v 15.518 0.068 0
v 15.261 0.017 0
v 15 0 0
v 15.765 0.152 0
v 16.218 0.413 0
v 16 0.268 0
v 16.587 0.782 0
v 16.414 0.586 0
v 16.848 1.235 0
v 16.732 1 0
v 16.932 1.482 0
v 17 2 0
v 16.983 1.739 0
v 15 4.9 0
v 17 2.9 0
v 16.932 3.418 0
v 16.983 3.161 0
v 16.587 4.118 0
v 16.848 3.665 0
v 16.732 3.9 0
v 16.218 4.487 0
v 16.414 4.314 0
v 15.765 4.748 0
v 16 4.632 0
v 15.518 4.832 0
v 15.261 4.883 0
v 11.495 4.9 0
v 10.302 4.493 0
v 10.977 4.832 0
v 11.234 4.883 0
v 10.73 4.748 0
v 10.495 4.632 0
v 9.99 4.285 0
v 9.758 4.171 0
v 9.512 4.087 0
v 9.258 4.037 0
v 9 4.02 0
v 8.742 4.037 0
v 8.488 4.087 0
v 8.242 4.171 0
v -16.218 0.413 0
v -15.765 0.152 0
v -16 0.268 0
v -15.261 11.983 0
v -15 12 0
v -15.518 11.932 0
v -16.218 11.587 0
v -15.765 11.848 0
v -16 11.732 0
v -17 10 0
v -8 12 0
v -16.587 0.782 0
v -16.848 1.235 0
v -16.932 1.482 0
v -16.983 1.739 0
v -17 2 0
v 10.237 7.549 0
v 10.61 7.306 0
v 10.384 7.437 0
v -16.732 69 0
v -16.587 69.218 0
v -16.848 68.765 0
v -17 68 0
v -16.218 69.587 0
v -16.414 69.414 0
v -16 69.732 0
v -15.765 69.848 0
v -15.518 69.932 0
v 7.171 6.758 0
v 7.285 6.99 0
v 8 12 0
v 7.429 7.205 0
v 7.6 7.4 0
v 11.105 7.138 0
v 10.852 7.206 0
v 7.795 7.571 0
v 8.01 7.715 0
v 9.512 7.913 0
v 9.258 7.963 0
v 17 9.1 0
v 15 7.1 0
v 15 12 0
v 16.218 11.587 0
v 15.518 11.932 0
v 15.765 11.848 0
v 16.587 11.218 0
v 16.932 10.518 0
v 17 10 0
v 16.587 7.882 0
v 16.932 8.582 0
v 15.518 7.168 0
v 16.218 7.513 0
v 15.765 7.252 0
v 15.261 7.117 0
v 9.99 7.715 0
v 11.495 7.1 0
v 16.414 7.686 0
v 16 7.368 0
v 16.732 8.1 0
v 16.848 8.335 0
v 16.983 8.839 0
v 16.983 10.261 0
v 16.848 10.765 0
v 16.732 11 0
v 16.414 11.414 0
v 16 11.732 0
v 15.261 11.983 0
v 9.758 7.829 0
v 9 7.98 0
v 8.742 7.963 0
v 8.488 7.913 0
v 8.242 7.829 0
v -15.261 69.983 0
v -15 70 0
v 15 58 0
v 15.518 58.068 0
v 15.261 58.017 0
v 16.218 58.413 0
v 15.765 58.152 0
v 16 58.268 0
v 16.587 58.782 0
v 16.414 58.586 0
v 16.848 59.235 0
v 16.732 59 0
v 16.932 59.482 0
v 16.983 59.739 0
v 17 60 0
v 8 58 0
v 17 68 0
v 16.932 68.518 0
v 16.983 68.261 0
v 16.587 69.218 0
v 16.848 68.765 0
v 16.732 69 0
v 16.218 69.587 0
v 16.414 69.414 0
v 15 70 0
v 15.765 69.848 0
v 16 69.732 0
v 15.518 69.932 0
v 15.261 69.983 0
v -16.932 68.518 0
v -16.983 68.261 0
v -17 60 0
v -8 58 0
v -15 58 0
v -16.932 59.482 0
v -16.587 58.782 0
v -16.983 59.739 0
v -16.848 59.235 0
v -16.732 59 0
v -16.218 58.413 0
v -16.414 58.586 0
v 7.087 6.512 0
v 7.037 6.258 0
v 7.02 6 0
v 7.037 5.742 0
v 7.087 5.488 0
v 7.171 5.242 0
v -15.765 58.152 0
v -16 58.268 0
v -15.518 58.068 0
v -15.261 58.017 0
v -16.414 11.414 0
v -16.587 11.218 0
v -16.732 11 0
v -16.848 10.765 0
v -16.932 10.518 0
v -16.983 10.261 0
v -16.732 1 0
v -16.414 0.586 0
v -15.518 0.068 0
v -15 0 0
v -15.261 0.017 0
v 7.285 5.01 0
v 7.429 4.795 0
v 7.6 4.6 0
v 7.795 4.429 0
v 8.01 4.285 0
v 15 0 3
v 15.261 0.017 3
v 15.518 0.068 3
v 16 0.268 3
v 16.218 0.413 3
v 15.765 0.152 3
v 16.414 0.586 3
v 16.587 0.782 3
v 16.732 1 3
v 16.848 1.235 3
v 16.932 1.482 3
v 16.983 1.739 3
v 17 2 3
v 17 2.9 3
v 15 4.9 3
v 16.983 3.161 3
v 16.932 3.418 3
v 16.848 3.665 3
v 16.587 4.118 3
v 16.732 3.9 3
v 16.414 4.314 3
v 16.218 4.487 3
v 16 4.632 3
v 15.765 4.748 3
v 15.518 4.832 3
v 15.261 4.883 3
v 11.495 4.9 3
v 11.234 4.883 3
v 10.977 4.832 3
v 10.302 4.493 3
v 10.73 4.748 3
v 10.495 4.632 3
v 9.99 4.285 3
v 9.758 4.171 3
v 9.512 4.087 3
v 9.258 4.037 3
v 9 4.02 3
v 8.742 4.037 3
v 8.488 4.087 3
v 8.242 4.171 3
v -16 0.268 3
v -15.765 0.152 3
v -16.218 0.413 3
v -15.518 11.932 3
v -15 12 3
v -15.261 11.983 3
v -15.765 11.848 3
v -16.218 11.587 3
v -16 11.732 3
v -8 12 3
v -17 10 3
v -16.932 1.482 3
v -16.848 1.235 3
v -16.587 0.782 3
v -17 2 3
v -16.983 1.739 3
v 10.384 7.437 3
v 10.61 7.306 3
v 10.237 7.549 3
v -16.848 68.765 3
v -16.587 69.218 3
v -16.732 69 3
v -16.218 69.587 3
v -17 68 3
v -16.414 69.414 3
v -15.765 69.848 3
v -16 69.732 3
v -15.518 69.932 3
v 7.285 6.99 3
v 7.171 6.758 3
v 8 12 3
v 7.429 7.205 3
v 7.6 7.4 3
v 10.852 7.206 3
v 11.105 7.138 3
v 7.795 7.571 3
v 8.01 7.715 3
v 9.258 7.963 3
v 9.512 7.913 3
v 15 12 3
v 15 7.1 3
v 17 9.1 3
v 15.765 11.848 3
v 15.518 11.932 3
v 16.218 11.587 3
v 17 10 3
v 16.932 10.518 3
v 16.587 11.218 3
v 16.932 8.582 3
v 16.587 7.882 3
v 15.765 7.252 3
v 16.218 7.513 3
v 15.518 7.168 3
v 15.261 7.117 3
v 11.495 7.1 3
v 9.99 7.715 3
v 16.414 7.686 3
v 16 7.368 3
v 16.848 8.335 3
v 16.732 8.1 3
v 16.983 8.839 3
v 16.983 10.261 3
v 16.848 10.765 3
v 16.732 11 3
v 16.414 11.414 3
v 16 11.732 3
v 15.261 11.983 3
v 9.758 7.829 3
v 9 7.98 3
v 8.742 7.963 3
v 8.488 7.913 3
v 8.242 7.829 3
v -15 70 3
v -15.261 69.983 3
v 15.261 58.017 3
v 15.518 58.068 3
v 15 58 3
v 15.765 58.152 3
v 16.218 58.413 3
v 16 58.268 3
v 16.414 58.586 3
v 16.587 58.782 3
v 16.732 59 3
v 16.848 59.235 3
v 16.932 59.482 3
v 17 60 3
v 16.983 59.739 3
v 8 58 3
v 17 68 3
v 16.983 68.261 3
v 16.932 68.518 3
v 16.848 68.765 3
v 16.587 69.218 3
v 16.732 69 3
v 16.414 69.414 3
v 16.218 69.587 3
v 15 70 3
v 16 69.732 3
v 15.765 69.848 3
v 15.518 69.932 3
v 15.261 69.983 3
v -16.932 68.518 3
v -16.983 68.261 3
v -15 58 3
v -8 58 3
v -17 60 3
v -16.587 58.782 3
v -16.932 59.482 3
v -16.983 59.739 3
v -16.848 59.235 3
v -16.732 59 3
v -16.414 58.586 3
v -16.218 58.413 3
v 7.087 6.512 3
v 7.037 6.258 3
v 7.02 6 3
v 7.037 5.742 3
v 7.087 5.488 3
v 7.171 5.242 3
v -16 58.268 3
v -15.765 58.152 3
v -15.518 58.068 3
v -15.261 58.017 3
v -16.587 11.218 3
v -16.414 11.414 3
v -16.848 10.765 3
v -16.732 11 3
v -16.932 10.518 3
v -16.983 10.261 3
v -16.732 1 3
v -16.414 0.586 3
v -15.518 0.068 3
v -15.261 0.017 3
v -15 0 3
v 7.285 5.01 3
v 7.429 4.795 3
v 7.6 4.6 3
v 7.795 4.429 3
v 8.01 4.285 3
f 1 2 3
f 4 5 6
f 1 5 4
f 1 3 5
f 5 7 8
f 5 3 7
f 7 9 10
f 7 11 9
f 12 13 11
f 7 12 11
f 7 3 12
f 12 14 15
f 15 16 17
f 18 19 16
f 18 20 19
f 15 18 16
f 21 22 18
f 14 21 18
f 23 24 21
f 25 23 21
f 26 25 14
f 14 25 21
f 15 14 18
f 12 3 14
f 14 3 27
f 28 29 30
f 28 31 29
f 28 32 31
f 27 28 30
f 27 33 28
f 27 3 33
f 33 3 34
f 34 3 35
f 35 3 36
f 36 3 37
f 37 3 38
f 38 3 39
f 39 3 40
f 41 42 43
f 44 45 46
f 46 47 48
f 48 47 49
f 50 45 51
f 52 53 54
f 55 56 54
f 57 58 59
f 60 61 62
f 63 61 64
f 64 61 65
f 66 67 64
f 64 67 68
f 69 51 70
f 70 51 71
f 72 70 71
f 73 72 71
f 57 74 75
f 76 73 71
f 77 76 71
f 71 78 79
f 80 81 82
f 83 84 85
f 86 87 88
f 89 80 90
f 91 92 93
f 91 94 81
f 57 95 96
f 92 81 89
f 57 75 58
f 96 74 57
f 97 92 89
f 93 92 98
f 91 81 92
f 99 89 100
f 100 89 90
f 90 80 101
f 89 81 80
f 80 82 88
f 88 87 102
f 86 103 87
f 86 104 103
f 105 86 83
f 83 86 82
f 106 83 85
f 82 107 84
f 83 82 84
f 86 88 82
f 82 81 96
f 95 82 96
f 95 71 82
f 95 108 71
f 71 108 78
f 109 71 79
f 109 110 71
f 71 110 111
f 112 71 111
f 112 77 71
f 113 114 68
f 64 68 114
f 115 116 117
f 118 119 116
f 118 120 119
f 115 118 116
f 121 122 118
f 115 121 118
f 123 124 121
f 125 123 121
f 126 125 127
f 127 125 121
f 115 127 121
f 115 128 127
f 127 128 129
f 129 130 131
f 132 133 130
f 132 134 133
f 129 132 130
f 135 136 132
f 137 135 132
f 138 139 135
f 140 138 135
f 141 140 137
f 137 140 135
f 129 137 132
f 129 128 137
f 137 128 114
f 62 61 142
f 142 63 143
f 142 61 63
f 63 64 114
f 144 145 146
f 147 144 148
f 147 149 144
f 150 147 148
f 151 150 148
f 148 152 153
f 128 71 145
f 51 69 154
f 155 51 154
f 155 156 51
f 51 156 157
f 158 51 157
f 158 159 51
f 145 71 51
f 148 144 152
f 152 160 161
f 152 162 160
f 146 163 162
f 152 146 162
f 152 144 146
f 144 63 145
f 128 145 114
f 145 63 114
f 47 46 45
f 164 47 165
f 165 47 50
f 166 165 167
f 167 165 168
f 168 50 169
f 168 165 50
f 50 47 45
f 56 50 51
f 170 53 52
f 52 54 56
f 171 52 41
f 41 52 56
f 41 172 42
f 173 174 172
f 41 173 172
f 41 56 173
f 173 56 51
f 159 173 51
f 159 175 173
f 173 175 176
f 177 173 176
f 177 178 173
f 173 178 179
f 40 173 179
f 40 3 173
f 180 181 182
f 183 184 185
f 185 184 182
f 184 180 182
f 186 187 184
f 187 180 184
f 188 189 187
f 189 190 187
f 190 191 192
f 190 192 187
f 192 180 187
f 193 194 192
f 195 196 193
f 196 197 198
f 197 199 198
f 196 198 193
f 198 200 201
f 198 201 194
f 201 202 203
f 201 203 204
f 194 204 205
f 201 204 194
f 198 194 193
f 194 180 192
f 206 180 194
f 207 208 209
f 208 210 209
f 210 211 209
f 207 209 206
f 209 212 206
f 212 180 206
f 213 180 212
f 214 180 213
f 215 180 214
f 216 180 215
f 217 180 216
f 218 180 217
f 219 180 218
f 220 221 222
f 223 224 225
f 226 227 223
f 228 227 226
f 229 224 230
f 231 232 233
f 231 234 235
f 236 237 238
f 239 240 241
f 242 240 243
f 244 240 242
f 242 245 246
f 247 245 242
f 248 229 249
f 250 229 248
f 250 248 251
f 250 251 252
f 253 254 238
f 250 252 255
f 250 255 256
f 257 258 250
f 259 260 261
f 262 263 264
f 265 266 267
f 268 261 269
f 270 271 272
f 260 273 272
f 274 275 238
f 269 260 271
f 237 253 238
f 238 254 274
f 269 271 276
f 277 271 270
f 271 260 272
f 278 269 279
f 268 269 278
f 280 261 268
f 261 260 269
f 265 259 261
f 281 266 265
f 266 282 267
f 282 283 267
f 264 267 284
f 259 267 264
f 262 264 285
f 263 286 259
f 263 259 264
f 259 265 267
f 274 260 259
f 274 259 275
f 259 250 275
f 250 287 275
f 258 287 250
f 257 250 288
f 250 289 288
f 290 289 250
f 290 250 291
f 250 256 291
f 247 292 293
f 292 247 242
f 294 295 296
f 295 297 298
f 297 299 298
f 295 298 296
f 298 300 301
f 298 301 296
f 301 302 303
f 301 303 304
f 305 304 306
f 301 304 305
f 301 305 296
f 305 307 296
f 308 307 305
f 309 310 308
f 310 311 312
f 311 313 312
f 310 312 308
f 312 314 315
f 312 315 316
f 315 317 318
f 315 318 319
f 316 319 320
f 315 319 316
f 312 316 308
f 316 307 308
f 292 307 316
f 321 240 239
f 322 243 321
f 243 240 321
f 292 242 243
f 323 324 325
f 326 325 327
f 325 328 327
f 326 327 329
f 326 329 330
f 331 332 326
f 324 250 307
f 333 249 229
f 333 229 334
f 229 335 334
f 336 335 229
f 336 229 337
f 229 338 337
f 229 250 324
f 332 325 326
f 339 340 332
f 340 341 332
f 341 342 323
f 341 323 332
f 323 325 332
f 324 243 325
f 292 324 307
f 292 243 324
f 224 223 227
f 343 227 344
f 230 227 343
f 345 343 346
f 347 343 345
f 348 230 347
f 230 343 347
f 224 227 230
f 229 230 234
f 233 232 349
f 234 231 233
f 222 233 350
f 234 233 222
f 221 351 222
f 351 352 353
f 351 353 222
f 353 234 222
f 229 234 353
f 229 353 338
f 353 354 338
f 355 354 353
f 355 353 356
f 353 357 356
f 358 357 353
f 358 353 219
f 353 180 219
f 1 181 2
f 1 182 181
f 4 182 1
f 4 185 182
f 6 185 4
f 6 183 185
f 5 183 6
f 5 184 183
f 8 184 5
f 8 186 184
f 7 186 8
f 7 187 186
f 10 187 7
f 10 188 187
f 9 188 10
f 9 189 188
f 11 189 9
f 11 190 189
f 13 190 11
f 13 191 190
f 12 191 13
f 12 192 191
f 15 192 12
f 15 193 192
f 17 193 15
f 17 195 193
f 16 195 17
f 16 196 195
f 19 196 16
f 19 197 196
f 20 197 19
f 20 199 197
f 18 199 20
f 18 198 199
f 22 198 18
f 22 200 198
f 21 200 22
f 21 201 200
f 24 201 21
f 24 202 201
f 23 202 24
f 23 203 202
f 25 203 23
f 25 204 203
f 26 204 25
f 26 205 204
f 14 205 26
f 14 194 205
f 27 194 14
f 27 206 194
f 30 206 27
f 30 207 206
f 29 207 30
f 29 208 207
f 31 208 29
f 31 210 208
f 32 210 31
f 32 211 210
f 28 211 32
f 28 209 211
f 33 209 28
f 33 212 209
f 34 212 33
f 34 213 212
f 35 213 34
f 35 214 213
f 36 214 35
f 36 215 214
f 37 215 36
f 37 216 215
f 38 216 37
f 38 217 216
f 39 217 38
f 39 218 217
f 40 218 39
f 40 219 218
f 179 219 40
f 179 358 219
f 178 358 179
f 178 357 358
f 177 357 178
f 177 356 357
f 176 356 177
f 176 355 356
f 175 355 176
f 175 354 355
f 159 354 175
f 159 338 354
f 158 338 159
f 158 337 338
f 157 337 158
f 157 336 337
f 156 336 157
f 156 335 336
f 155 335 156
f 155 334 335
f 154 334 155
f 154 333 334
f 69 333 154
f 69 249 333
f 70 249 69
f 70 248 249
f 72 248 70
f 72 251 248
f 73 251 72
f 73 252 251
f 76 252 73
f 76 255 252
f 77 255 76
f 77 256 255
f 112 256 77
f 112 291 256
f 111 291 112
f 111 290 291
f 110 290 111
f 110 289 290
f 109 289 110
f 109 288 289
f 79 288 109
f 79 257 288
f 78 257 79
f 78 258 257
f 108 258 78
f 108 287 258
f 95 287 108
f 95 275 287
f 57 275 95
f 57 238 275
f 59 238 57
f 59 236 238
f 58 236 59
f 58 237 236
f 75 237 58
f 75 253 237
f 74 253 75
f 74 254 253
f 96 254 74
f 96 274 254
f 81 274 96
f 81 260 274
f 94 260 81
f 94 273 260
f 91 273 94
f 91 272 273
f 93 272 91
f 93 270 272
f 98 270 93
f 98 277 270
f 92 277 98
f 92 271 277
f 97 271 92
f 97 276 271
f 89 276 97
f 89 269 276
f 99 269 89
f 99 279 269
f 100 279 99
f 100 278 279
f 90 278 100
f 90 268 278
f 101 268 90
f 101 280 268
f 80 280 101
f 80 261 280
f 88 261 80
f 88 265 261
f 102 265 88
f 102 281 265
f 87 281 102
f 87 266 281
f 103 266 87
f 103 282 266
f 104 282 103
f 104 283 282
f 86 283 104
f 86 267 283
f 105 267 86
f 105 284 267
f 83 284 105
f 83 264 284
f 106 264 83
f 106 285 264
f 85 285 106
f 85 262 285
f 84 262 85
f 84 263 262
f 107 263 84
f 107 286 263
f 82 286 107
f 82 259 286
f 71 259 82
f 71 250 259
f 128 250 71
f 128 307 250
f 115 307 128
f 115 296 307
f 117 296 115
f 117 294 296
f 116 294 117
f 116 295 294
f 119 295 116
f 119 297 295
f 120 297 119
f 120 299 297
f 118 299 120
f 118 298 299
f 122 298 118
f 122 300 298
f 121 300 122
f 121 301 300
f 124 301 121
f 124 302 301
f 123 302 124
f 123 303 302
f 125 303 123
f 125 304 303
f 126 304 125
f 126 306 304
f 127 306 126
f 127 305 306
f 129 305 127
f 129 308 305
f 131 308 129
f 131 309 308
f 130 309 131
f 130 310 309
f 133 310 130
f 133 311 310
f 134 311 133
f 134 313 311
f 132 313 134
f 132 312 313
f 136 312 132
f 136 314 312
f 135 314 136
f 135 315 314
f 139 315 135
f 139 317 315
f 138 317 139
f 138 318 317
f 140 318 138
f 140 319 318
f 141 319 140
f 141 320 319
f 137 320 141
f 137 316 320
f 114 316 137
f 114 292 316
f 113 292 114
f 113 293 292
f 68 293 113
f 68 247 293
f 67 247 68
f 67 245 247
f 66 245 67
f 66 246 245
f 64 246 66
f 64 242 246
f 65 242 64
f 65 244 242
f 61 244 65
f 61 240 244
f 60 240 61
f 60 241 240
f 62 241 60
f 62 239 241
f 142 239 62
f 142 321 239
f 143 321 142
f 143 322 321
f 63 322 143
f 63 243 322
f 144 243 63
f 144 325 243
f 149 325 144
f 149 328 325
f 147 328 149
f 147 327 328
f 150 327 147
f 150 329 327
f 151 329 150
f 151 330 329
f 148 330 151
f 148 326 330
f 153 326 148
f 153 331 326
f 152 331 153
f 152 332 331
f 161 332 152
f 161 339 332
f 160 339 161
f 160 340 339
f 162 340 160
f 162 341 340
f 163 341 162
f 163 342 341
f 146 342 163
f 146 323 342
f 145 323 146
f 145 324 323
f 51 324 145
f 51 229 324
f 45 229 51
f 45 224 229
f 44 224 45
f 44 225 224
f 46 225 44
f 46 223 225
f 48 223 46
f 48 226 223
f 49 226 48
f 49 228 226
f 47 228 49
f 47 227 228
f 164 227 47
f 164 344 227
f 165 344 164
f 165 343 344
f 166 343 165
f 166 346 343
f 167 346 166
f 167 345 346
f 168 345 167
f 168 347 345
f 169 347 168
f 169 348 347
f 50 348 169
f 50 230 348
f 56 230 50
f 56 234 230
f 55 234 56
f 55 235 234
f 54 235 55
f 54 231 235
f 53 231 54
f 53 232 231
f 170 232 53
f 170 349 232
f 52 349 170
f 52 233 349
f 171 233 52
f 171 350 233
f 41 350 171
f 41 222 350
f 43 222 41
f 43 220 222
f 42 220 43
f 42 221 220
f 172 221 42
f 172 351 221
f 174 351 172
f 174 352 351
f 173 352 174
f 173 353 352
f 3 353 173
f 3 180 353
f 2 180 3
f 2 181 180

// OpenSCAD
// Cord Winder — wrap earbuds, charging cables or extension leads
// so they don't tangle. Tuck the plug into the slit at one end.
// Print flat (as rendered). Print two or three at different lengths.

/* [Size] */
// Overall length (mm)
length = 70;            // [40:1:200]
// Width of the end tabs (mm)
width = 34;             // [20:1:80]
// Width of the middle where the cable wraps (mm)
waist = 16;             // [8:1:60]
// Thickness (mm)
thickness = 3;          // [2:0.5:6]
// Width of the slit that holds the cable end (mm)
slit = 2.2;             // [1:0.1:5]

/* [Hidden] */
$fn = 48;
tab = 12;   // height of each end tab

module shape() {
    offset(r = 2) offset(delta = -2)
    difference() {
        union() {
            translate([-width / 2, 0]) square([width, tab]);
            translate([-width / 2, length - tab]) square([width, tab]);
            translate([-waist / 2, 0]) square([waist, length]);
        }
        // slit + keyhole to lock the cable end
        translate([width / 2 - 8, tab / 2 - slit / 2]) square([10, slit]);
        translate([width / 2 - 8, tab / 2]) circle(d = slit * 1.8);
    }
}

linear_extrude(thickness) shape();
